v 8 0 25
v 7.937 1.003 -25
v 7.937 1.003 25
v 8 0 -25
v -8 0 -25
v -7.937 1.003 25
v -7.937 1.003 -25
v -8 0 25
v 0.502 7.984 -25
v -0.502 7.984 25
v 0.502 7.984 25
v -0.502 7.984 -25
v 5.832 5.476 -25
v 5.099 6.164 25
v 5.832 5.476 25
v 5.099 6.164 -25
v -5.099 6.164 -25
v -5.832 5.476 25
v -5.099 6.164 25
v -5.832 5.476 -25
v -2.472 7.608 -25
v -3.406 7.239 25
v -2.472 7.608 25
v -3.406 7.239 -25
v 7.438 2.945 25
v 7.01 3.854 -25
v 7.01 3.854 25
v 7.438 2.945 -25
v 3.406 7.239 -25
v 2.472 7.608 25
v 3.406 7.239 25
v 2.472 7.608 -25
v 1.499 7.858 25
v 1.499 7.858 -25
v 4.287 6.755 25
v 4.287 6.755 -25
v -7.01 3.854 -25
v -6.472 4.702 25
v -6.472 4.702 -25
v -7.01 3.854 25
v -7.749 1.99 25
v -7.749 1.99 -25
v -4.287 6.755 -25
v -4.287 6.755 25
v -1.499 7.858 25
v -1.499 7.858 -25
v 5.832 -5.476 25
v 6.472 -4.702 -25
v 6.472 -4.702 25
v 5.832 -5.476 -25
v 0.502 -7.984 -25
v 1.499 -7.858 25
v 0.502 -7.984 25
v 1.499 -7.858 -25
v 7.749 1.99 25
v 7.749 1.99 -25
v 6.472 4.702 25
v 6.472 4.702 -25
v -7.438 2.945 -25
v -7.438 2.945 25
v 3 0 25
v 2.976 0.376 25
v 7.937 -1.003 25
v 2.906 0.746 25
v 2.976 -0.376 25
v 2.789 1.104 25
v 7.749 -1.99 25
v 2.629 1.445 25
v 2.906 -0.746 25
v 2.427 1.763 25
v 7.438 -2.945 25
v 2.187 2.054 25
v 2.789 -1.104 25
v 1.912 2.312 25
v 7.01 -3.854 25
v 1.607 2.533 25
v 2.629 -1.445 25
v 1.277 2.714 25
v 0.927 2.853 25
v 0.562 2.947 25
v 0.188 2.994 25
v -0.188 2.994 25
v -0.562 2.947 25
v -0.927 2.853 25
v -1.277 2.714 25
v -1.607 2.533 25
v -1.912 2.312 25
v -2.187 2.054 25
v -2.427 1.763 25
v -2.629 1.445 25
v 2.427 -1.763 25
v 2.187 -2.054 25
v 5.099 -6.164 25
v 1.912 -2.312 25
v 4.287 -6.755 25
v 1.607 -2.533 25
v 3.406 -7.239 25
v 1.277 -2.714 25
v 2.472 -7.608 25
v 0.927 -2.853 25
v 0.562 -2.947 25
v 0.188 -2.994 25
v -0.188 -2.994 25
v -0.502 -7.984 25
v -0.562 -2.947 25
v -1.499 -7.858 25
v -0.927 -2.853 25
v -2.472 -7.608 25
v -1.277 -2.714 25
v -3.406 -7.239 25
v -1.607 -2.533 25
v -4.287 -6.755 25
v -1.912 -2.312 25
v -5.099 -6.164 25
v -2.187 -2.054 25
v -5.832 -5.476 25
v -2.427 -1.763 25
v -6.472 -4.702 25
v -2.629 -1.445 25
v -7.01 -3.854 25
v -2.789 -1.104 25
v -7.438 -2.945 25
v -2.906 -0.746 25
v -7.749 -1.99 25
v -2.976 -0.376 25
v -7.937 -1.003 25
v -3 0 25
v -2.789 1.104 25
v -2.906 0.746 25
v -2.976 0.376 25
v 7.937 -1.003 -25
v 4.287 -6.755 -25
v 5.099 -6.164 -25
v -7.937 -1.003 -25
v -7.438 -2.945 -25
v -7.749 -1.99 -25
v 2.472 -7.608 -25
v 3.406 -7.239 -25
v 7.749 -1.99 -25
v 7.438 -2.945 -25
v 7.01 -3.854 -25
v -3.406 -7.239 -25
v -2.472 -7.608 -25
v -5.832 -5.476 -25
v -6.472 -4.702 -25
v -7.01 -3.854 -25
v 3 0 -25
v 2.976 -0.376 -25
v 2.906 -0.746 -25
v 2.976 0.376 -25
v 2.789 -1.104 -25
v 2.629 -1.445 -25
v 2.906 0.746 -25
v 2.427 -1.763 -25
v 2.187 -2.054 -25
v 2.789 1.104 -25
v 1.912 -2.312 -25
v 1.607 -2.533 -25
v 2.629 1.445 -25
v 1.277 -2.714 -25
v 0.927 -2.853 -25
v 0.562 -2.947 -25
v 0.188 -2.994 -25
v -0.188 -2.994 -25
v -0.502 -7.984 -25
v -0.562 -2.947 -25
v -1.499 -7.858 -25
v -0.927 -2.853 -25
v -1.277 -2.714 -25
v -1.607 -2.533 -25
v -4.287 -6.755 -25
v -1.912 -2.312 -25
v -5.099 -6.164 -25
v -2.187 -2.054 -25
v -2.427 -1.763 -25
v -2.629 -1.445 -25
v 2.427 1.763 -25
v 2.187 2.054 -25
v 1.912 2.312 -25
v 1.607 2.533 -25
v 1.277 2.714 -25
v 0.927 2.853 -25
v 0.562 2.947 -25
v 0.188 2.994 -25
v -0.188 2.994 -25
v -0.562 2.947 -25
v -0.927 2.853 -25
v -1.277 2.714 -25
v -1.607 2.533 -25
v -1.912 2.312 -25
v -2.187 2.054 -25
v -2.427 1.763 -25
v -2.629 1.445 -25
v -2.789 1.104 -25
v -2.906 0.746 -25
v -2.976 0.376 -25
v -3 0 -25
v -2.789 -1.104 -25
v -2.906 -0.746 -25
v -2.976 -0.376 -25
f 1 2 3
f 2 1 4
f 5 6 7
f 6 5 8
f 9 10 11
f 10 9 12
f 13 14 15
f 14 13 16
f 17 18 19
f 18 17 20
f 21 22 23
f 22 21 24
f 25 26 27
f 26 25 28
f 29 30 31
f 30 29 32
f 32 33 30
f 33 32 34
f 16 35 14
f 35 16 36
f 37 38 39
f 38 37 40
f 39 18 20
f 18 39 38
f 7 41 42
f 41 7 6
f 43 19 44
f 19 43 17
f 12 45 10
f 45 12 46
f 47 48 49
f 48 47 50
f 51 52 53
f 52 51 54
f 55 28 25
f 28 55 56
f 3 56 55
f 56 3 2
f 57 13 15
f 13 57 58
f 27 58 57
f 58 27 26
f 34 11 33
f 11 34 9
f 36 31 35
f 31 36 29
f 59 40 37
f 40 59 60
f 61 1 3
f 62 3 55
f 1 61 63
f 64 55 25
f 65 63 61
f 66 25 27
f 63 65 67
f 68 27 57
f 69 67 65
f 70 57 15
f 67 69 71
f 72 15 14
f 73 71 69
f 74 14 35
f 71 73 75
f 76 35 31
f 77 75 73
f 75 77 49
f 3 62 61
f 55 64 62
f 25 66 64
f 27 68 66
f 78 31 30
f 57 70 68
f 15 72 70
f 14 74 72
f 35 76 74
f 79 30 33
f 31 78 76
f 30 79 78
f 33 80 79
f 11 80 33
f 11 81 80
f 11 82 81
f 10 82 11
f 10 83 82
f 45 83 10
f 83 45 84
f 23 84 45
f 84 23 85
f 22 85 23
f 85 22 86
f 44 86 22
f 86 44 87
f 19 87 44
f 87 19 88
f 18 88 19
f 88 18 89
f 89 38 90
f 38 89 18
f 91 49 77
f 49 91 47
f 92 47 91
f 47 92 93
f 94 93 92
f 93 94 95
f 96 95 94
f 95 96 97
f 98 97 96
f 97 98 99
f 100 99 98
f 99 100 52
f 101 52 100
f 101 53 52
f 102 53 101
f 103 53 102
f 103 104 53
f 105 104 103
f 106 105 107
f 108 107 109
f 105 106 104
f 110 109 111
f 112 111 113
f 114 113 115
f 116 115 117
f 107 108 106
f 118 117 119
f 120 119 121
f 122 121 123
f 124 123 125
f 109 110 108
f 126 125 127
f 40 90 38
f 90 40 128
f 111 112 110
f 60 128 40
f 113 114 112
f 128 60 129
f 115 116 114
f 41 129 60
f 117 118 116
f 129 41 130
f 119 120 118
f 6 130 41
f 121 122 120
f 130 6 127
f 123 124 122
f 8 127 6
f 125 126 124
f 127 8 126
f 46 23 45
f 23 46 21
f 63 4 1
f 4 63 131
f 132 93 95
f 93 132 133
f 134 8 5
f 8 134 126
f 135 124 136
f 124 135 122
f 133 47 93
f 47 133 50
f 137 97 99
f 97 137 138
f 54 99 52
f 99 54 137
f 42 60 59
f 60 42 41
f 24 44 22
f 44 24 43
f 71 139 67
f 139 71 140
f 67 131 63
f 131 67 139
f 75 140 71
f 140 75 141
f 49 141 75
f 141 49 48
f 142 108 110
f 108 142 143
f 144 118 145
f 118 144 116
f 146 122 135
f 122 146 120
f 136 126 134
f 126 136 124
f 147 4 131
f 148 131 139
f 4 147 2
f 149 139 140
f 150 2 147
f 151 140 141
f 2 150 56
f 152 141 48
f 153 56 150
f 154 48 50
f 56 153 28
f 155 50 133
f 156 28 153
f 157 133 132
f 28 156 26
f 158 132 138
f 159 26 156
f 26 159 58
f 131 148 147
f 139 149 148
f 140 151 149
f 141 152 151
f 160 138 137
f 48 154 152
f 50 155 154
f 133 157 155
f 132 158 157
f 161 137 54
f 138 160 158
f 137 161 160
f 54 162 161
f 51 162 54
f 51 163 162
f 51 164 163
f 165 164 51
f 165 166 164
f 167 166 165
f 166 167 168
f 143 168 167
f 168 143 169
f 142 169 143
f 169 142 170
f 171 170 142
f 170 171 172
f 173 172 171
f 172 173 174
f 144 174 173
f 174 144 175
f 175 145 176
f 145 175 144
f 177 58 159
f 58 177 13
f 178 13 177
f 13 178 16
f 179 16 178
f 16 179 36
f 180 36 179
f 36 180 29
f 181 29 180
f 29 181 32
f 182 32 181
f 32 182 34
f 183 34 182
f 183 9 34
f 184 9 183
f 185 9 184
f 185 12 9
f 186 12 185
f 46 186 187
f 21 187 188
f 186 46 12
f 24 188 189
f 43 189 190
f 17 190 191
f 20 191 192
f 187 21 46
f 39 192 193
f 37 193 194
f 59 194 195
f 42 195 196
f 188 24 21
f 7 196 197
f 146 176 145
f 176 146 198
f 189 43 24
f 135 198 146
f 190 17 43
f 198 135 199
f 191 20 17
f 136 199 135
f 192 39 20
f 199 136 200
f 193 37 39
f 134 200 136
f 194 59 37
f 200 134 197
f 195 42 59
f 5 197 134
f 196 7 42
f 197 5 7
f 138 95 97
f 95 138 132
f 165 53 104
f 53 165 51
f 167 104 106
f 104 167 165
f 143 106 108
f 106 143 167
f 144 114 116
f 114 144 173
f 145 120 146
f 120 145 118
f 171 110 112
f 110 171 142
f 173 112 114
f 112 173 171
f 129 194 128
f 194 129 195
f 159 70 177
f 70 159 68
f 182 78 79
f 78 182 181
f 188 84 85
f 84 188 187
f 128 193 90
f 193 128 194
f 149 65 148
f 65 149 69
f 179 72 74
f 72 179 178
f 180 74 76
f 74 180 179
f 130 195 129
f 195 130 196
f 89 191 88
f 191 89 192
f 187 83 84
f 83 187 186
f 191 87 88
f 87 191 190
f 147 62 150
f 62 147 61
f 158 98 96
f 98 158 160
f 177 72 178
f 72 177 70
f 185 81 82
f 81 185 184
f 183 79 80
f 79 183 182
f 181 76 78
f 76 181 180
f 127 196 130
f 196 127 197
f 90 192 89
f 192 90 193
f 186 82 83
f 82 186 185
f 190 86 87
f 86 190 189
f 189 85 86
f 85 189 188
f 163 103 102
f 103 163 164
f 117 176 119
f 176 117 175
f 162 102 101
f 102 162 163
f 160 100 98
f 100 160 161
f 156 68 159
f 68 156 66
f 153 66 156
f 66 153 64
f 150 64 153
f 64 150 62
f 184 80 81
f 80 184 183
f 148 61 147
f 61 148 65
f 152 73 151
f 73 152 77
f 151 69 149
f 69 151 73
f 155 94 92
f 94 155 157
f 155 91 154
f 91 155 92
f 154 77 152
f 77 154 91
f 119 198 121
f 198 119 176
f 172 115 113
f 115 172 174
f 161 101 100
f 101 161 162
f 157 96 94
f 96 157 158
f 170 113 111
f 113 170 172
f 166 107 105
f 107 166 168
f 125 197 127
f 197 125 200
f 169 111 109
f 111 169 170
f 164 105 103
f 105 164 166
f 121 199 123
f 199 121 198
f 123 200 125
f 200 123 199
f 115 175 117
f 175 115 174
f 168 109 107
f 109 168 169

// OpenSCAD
$fn = 50;


difference() {
	union() {
		translate(v = [0, 0, -25.0000000000]) {
			cylinder(h = 50, r = 8.0000000000);
		}
	}
	union() {
		translate(v = [0, 0, -100.0000000000]) {
			cylinder(h = 200, r = 3.0000000000);
		}
	}
}
